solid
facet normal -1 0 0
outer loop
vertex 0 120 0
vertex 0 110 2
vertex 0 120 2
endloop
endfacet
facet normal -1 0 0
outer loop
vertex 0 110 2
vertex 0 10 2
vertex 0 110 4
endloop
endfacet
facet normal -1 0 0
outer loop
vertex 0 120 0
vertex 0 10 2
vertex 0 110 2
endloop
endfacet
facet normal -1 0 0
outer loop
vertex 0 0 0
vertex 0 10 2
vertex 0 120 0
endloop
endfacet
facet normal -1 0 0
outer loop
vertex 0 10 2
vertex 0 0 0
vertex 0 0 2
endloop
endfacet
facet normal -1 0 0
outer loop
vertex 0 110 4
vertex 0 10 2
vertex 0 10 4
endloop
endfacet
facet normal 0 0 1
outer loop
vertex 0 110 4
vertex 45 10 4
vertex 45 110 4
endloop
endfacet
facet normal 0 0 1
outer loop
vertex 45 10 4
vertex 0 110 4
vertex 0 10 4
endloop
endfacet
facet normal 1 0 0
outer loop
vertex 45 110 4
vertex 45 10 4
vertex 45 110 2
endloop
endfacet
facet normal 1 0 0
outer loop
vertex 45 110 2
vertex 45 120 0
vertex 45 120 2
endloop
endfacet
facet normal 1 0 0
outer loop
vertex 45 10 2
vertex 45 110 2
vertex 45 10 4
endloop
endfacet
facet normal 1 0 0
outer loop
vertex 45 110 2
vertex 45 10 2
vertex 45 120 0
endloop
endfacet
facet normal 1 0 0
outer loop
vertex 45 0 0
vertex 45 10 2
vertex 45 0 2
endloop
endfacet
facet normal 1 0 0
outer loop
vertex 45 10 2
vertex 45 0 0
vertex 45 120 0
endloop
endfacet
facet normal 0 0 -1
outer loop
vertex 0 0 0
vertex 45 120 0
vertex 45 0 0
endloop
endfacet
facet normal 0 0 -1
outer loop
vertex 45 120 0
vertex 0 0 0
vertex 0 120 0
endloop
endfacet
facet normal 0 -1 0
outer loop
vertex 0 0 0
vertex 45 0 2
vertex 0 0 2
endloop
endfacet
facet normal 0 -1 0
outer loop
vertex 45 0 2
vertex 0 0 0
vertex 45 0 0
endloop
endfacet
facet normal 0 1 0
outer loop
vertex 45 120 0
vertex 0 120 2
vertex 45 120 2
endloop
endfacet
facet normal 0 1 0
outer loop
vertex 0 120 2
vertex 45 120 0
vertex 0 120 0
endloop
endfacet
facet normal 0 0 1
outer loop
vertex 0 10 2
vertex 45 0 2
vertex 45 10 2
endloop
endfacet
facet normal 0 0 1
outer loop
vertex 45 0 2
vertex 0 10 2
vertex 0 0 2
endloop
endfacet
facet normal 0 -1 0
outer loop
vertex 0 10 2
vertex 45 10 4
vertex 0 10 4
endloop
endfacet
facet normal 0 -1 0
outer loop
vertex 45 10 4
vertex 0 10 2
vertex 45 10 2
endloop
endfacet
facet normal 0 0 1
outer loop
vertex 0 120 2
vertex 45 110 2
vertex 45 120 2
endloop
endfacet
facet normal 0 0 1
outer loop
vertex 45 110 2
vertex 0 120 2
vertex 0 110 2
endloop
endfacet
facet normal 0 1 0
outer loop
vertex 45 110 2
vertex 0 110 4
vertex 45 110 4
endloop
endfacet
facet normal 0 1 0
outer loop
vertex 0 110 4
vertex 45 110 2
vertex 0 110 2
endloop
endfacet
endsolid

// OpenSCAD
difference() {
    cube([45,120,4]);
    translate([0, 0, 2])
        cube([45, 10, 2]);
    translate([0, 120 - 10, 2])
        cube([45, 10, 2]);
};
